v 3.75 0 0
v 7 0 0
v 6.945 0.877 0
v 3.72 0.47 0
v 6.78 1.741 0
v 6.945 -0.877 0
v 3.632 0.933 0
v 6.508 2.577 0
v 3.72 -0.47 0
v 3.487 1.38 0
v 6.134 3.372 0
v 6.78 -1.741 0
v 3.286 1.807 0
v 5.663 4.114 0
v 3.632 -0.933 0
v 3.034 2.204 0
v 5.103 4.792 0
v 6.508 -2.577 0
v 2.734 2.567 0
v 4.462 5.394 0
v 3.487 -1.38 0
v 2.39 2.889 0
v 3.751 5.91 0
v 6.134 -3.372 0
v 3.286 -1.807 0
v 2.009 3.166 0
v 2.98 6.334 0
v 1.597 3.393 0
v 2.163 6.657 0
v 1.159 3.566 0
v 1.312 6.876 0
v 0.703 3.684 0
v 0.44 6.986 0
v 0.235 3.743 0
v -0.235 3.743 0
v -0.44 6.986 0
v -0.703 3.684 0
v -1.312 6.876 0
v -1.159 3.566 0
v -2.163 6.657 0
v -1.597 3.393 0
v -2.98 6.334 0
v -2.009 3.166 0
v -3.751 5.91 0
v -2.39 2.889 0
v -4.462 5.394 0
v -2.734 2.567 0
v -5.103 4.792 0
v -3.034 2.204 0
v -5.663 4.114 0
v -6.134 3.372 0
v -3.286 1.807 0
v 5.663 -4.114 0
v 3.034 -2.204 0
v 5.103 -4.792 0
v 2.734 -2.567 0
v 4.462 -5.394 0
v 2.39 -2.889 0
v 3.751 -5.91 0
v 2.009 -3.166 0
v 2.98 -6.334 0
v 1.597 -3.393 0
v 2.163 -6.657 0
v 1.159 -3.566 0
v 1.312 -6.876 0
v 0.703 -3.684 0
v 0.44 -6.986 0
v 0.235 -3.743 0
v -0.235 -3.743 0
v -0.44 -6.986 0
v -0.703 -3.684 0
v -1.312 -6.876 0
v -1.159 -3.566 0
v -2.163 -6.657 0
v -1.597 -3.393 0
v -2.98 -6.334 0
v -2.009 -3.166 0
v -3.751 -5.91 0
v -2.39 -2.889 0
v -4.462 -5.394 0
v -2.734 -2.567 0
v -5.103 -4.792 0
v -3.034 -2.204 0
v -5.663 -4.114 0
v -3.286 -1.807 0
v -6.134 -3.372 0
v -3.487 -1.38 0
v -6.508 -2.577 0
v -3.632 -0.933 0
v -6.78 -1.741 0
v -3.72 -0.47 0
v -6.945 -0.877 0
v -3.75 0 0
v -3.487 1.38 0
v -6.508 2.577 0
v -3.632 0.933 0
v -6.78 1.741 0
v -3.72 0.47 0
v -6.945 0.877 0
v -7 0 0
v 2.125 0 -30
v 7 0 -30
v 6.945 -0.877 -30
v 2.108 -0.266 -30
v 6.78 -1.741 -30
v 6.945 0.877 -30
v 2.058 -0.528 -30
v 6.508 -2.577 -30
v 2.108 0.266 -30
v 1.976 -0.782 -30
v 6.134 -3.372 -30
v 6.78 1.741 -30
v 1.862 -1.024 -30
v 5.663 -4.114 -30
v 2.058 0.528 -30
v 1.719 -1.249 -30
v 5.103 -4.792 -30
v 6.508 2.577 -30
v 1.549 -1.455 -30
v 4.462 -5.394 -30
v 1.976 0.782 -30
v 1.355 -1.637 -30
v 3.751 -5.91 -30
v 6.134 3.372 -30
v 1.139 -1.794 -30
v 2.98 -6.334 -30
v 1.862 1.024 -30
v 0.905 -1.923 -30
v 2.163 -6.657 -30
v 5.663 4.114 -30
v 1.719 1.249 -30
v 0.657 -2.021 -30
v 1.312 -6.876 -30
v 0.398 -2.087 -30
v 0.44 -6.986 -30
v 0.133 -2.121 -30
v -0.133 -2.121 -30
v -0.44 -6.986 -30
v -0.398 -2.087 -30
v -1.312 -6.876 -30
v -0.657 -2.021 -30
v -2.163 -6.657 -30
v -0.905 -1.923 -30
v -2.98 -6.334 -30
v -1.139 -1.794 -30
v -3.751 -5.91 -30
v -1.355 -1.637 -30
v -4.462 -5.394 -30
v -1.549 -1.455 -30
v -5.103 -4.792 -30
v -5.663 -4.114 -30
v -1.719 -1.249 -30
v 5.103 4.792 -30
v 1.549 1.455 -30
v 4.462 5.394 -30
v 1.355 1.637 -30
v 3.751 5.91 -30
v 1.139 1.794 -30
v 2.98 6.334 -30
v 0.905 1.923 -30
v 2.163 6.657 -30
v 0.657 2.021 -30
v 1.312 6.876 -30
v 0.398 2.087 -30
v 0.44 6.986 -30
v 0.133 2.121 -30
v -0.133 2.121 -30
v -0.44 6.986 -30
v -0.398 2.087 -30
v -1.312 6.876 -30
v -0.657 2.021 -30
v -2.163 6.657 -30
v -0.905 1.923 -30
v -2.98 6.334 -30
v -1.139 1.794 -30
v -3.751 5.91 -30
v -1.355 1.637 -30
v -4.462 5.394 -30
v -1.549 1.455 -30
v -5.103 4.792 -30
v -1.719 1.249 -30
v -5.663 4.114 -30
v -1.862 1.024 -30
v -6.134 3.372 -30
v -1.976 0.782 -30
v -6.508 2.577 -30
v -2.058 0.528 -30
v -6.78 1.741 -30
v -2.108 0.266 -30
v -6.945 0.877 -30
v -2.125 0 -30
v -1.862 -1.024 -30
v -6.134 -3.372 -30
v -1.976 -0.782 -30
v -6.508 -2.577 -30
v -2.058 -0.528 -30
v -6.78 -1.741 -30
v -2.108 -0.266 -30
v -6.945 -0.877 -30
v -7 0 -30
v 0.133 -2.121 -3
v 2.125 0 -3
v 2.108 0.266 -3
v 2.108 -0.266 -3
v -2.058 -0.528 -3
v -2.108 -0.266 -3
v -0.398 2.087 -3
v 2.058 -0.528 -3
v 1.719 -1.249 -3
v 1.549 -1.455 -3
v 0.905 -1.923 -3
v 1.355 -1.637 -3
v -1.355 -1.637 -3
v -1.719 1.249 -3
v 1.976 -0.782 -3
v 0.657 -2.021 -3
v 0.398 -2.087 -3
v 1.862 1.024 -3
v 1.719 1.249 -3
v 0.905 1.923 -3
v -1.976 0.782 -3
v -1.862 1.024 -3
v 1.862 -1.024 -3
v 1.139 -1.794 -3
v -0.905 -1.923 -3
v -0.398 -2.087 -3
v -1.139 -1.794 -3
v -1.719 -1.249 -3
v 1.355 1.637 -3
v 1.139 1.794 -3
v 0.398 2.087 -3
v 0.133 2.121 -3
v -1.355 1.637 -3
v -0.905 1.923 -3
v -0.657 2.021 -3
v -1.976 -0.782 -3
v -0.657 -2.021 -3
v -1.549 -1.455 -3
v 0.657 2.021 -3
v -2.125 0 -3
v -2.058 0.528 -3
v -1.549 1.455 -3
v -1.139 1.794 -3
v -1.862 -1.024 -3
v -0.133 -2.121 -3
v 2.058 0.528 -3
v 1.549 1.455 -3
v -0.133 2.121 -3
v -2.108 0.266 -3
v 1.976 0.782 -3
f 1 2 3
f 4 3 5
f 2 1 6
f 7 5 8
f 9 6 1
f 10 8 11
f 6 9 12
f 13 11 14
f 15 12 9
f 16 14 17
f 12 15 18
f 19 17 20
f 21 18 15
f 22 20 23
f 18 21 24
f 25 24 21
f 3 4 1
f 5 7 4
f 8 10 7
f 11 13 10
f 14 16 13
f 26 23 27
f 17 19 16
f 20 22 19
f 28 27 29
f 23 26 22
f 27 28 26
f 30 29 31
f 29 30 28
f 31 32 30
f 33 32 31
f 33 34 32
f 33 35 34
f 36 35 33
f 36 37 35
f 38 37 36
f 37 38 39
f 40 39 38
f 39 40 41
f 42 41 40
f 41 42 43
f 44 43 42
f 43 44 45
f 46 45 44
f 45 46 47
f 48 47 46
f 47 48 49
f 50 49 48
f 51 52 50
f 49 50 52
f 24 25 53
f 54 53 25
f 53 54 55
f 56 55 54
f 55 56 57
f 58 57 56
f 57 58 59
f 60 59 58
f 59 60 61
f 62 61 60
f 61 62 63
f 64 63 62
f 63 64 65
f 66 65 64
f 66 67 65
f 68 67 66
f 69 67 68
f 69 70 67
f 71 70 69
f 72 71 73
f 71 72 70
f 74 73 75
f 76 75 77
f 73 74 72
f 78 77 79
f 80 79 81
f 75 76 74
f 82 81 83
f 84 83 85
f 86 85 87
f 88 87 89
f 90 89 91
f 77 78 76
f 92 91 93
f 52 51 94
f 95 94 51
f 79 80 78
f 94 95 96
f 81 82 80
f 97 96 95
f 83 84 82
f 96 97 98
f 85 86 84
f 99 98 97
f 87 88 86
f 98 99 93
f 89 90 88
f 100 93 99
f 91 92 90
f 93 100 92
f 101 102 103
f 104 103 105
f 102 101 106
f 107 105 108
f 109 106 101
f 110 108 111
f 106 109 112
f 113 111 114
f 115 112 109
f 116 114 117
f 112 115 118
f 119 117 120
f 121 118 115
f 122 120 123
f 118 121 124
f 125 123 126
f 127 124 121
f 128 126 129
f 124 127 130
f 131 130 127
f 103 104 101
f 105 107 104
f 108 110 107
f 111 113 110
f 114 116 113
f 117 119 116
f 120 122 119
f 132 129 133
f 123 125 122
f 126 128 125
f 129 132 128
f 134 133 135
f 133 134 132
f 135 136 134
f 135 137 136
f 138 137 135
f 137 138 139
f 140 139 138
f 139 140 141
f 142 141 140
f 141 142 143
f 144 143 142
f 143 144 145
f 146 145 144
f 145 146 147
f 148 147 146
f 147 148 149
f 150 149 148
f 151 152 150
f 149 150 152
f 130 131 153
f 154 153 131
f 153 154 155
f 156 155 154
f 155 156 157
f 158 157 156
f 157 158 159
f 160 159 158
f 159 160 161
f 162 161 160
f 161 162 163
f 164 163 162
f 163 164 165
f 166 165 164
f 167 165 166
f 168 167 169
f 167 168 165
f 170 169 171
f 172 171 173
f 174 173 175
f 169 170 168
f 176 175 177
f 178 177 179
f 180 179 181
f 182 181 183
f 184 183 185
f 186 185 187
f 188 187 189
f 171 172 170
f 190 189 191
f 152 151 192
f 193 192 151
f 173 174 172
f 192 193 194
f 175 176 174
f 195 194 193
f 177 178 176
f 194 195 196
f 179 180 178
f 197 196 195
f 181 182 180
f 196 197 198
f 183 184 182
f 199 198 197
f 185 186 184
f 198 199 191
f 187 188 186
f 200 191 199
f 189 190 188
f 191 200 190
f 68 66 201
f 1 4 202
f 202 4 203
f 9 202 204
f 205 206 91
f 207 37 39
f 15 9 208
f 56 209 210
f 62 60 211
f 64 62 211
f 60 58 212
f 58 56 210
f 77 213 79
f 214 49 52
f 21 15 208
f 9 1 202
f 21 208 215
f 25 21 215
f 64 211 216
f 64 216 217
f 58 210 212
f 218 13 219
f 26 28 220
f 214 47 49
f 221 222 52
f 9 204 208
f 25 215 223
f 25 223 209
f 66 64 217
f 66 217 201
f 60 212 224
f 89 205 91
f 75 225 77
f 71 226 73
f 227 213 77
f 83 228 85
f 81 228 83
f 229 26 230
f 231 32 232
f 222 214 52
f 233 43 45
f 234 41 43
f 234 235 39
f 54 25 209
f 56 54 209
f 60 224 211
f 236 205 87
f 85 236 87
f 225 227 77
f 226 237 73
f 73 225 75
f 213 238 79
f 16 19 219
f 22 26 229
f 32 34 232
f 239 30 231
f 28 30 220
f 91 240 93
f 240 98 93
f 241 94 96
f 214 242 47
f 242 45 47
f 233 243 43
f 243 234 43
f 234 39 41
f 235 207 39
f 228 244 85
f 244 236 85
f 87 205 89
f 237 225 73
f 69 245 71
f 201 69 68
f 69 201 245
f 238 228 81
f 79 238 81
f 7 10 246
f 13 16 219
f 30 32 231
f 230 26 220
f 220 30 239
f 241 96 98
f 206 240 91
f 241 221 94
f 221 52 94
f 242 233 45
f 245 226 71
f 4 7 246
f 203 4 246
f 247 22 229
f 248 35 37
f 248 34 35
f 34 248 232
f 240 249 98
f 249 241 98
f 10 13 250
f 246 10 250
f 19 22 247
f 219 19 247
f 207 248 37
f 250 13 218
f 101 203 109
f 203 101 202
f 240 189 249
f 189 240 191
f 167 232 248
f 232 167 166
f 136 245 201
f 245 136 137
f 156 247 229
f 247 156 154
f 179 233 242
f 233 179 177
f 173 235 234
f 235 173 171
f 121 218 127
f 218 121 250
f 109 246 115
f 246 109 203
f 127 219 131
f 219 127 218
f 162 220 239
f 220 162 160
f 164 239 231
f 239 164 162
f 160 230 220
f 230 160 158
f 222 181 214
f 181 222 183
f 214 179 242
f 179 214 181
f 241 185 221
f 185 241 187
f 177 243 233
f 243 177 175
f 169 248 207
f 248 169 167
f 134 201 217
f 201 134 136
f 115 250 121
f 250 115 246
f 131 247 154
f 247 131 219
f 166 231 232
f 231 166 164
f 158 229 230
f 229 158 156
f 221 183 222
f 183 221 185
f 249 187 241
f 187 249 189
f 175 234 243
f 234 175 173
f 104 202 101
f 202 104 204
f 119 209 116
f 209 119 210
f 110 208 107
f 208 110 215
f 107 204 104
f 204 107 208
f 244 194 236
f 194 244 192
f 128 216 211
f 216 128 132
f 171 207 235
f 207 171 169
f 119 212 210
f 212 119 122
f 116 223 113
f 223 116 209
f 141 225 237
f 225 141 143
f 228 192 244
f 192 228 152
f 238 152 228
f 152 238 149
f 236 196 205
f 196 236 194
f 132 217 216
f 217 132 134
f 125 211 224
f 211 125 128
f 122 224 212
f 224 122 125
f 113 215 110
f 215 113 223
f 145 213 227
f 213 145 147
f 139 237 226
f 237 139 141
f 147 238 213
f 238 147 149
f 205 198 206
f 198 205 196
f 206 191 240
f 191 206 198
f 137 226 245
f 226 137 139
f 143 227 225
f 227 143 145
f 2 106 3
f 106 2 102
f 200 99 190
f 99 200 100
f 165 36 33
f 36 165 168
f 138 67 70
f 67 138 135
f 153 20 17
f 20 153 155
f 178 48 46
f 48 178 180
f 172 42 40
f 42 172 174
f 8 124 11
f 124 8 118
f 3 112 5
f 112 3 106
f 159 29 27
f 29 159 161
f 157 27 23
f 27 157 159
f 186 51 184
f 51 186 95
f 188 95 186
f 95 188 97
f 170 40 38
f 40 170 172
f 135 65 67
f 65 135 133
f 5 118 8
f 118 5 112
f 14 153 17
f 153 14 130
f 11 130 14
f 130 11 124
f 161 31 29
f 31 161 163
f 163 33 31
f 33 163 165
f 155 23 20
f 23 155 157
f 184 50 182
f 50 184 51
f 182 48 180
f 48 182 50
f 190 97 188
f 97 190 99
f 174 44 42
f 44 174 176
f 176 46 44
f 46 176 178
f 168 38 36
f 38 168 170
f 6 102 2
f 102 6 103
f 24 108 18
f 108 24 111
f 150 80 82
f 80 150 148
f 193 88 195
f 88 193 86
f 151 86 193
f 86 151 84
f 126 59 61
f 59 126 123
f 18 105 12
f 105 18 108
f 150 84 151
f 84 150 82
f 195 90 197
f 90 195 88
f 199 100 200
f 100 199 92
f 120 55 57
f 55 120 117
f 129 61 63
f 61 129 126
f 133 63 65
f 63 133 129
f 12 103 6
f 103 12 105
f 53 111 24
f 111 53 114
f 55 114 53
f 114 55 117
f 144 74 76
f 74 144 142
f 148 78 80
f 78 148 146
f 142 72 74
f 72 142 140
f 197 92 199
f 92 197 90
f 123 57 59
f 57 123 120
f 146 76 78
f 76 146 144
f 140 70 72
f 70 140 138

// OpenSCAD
$fn = 50;


difference() {
	union() {
		translate(v = [0, 0, -30.0000000000]) {
			cylinder(h = 30, r = 7.0000000000);
		}
		cylinder(h = 0, r = 10.0000000000);
	}
	union() {
		translate(v = [0, 0, 0]) {
			rotate(a = [0, 0, 0]) {
				difference() {
					union() {
						#translate(v = [0, 0, -30.0000000000]) {
							cylinder(h = 30, r = 2.0000000000);
						}
						#translate(v = [0, 0, -3]) {
							cylinder(h = 3, r = 7.0000000000, r1 = 2.1250000000, r2 = 3.7500000000);
						}
						#translate(v = [0, 0, -30.0000000000]) {
							cylinder(h = 30, r = 2.1250000000);
						}
						#translate(v = [0, 0, -30.0000000000]) {
							cylinder(h = 30, r = 2.0000000000);
						}
					}
					union();
				}
			}
		}
	}
}
